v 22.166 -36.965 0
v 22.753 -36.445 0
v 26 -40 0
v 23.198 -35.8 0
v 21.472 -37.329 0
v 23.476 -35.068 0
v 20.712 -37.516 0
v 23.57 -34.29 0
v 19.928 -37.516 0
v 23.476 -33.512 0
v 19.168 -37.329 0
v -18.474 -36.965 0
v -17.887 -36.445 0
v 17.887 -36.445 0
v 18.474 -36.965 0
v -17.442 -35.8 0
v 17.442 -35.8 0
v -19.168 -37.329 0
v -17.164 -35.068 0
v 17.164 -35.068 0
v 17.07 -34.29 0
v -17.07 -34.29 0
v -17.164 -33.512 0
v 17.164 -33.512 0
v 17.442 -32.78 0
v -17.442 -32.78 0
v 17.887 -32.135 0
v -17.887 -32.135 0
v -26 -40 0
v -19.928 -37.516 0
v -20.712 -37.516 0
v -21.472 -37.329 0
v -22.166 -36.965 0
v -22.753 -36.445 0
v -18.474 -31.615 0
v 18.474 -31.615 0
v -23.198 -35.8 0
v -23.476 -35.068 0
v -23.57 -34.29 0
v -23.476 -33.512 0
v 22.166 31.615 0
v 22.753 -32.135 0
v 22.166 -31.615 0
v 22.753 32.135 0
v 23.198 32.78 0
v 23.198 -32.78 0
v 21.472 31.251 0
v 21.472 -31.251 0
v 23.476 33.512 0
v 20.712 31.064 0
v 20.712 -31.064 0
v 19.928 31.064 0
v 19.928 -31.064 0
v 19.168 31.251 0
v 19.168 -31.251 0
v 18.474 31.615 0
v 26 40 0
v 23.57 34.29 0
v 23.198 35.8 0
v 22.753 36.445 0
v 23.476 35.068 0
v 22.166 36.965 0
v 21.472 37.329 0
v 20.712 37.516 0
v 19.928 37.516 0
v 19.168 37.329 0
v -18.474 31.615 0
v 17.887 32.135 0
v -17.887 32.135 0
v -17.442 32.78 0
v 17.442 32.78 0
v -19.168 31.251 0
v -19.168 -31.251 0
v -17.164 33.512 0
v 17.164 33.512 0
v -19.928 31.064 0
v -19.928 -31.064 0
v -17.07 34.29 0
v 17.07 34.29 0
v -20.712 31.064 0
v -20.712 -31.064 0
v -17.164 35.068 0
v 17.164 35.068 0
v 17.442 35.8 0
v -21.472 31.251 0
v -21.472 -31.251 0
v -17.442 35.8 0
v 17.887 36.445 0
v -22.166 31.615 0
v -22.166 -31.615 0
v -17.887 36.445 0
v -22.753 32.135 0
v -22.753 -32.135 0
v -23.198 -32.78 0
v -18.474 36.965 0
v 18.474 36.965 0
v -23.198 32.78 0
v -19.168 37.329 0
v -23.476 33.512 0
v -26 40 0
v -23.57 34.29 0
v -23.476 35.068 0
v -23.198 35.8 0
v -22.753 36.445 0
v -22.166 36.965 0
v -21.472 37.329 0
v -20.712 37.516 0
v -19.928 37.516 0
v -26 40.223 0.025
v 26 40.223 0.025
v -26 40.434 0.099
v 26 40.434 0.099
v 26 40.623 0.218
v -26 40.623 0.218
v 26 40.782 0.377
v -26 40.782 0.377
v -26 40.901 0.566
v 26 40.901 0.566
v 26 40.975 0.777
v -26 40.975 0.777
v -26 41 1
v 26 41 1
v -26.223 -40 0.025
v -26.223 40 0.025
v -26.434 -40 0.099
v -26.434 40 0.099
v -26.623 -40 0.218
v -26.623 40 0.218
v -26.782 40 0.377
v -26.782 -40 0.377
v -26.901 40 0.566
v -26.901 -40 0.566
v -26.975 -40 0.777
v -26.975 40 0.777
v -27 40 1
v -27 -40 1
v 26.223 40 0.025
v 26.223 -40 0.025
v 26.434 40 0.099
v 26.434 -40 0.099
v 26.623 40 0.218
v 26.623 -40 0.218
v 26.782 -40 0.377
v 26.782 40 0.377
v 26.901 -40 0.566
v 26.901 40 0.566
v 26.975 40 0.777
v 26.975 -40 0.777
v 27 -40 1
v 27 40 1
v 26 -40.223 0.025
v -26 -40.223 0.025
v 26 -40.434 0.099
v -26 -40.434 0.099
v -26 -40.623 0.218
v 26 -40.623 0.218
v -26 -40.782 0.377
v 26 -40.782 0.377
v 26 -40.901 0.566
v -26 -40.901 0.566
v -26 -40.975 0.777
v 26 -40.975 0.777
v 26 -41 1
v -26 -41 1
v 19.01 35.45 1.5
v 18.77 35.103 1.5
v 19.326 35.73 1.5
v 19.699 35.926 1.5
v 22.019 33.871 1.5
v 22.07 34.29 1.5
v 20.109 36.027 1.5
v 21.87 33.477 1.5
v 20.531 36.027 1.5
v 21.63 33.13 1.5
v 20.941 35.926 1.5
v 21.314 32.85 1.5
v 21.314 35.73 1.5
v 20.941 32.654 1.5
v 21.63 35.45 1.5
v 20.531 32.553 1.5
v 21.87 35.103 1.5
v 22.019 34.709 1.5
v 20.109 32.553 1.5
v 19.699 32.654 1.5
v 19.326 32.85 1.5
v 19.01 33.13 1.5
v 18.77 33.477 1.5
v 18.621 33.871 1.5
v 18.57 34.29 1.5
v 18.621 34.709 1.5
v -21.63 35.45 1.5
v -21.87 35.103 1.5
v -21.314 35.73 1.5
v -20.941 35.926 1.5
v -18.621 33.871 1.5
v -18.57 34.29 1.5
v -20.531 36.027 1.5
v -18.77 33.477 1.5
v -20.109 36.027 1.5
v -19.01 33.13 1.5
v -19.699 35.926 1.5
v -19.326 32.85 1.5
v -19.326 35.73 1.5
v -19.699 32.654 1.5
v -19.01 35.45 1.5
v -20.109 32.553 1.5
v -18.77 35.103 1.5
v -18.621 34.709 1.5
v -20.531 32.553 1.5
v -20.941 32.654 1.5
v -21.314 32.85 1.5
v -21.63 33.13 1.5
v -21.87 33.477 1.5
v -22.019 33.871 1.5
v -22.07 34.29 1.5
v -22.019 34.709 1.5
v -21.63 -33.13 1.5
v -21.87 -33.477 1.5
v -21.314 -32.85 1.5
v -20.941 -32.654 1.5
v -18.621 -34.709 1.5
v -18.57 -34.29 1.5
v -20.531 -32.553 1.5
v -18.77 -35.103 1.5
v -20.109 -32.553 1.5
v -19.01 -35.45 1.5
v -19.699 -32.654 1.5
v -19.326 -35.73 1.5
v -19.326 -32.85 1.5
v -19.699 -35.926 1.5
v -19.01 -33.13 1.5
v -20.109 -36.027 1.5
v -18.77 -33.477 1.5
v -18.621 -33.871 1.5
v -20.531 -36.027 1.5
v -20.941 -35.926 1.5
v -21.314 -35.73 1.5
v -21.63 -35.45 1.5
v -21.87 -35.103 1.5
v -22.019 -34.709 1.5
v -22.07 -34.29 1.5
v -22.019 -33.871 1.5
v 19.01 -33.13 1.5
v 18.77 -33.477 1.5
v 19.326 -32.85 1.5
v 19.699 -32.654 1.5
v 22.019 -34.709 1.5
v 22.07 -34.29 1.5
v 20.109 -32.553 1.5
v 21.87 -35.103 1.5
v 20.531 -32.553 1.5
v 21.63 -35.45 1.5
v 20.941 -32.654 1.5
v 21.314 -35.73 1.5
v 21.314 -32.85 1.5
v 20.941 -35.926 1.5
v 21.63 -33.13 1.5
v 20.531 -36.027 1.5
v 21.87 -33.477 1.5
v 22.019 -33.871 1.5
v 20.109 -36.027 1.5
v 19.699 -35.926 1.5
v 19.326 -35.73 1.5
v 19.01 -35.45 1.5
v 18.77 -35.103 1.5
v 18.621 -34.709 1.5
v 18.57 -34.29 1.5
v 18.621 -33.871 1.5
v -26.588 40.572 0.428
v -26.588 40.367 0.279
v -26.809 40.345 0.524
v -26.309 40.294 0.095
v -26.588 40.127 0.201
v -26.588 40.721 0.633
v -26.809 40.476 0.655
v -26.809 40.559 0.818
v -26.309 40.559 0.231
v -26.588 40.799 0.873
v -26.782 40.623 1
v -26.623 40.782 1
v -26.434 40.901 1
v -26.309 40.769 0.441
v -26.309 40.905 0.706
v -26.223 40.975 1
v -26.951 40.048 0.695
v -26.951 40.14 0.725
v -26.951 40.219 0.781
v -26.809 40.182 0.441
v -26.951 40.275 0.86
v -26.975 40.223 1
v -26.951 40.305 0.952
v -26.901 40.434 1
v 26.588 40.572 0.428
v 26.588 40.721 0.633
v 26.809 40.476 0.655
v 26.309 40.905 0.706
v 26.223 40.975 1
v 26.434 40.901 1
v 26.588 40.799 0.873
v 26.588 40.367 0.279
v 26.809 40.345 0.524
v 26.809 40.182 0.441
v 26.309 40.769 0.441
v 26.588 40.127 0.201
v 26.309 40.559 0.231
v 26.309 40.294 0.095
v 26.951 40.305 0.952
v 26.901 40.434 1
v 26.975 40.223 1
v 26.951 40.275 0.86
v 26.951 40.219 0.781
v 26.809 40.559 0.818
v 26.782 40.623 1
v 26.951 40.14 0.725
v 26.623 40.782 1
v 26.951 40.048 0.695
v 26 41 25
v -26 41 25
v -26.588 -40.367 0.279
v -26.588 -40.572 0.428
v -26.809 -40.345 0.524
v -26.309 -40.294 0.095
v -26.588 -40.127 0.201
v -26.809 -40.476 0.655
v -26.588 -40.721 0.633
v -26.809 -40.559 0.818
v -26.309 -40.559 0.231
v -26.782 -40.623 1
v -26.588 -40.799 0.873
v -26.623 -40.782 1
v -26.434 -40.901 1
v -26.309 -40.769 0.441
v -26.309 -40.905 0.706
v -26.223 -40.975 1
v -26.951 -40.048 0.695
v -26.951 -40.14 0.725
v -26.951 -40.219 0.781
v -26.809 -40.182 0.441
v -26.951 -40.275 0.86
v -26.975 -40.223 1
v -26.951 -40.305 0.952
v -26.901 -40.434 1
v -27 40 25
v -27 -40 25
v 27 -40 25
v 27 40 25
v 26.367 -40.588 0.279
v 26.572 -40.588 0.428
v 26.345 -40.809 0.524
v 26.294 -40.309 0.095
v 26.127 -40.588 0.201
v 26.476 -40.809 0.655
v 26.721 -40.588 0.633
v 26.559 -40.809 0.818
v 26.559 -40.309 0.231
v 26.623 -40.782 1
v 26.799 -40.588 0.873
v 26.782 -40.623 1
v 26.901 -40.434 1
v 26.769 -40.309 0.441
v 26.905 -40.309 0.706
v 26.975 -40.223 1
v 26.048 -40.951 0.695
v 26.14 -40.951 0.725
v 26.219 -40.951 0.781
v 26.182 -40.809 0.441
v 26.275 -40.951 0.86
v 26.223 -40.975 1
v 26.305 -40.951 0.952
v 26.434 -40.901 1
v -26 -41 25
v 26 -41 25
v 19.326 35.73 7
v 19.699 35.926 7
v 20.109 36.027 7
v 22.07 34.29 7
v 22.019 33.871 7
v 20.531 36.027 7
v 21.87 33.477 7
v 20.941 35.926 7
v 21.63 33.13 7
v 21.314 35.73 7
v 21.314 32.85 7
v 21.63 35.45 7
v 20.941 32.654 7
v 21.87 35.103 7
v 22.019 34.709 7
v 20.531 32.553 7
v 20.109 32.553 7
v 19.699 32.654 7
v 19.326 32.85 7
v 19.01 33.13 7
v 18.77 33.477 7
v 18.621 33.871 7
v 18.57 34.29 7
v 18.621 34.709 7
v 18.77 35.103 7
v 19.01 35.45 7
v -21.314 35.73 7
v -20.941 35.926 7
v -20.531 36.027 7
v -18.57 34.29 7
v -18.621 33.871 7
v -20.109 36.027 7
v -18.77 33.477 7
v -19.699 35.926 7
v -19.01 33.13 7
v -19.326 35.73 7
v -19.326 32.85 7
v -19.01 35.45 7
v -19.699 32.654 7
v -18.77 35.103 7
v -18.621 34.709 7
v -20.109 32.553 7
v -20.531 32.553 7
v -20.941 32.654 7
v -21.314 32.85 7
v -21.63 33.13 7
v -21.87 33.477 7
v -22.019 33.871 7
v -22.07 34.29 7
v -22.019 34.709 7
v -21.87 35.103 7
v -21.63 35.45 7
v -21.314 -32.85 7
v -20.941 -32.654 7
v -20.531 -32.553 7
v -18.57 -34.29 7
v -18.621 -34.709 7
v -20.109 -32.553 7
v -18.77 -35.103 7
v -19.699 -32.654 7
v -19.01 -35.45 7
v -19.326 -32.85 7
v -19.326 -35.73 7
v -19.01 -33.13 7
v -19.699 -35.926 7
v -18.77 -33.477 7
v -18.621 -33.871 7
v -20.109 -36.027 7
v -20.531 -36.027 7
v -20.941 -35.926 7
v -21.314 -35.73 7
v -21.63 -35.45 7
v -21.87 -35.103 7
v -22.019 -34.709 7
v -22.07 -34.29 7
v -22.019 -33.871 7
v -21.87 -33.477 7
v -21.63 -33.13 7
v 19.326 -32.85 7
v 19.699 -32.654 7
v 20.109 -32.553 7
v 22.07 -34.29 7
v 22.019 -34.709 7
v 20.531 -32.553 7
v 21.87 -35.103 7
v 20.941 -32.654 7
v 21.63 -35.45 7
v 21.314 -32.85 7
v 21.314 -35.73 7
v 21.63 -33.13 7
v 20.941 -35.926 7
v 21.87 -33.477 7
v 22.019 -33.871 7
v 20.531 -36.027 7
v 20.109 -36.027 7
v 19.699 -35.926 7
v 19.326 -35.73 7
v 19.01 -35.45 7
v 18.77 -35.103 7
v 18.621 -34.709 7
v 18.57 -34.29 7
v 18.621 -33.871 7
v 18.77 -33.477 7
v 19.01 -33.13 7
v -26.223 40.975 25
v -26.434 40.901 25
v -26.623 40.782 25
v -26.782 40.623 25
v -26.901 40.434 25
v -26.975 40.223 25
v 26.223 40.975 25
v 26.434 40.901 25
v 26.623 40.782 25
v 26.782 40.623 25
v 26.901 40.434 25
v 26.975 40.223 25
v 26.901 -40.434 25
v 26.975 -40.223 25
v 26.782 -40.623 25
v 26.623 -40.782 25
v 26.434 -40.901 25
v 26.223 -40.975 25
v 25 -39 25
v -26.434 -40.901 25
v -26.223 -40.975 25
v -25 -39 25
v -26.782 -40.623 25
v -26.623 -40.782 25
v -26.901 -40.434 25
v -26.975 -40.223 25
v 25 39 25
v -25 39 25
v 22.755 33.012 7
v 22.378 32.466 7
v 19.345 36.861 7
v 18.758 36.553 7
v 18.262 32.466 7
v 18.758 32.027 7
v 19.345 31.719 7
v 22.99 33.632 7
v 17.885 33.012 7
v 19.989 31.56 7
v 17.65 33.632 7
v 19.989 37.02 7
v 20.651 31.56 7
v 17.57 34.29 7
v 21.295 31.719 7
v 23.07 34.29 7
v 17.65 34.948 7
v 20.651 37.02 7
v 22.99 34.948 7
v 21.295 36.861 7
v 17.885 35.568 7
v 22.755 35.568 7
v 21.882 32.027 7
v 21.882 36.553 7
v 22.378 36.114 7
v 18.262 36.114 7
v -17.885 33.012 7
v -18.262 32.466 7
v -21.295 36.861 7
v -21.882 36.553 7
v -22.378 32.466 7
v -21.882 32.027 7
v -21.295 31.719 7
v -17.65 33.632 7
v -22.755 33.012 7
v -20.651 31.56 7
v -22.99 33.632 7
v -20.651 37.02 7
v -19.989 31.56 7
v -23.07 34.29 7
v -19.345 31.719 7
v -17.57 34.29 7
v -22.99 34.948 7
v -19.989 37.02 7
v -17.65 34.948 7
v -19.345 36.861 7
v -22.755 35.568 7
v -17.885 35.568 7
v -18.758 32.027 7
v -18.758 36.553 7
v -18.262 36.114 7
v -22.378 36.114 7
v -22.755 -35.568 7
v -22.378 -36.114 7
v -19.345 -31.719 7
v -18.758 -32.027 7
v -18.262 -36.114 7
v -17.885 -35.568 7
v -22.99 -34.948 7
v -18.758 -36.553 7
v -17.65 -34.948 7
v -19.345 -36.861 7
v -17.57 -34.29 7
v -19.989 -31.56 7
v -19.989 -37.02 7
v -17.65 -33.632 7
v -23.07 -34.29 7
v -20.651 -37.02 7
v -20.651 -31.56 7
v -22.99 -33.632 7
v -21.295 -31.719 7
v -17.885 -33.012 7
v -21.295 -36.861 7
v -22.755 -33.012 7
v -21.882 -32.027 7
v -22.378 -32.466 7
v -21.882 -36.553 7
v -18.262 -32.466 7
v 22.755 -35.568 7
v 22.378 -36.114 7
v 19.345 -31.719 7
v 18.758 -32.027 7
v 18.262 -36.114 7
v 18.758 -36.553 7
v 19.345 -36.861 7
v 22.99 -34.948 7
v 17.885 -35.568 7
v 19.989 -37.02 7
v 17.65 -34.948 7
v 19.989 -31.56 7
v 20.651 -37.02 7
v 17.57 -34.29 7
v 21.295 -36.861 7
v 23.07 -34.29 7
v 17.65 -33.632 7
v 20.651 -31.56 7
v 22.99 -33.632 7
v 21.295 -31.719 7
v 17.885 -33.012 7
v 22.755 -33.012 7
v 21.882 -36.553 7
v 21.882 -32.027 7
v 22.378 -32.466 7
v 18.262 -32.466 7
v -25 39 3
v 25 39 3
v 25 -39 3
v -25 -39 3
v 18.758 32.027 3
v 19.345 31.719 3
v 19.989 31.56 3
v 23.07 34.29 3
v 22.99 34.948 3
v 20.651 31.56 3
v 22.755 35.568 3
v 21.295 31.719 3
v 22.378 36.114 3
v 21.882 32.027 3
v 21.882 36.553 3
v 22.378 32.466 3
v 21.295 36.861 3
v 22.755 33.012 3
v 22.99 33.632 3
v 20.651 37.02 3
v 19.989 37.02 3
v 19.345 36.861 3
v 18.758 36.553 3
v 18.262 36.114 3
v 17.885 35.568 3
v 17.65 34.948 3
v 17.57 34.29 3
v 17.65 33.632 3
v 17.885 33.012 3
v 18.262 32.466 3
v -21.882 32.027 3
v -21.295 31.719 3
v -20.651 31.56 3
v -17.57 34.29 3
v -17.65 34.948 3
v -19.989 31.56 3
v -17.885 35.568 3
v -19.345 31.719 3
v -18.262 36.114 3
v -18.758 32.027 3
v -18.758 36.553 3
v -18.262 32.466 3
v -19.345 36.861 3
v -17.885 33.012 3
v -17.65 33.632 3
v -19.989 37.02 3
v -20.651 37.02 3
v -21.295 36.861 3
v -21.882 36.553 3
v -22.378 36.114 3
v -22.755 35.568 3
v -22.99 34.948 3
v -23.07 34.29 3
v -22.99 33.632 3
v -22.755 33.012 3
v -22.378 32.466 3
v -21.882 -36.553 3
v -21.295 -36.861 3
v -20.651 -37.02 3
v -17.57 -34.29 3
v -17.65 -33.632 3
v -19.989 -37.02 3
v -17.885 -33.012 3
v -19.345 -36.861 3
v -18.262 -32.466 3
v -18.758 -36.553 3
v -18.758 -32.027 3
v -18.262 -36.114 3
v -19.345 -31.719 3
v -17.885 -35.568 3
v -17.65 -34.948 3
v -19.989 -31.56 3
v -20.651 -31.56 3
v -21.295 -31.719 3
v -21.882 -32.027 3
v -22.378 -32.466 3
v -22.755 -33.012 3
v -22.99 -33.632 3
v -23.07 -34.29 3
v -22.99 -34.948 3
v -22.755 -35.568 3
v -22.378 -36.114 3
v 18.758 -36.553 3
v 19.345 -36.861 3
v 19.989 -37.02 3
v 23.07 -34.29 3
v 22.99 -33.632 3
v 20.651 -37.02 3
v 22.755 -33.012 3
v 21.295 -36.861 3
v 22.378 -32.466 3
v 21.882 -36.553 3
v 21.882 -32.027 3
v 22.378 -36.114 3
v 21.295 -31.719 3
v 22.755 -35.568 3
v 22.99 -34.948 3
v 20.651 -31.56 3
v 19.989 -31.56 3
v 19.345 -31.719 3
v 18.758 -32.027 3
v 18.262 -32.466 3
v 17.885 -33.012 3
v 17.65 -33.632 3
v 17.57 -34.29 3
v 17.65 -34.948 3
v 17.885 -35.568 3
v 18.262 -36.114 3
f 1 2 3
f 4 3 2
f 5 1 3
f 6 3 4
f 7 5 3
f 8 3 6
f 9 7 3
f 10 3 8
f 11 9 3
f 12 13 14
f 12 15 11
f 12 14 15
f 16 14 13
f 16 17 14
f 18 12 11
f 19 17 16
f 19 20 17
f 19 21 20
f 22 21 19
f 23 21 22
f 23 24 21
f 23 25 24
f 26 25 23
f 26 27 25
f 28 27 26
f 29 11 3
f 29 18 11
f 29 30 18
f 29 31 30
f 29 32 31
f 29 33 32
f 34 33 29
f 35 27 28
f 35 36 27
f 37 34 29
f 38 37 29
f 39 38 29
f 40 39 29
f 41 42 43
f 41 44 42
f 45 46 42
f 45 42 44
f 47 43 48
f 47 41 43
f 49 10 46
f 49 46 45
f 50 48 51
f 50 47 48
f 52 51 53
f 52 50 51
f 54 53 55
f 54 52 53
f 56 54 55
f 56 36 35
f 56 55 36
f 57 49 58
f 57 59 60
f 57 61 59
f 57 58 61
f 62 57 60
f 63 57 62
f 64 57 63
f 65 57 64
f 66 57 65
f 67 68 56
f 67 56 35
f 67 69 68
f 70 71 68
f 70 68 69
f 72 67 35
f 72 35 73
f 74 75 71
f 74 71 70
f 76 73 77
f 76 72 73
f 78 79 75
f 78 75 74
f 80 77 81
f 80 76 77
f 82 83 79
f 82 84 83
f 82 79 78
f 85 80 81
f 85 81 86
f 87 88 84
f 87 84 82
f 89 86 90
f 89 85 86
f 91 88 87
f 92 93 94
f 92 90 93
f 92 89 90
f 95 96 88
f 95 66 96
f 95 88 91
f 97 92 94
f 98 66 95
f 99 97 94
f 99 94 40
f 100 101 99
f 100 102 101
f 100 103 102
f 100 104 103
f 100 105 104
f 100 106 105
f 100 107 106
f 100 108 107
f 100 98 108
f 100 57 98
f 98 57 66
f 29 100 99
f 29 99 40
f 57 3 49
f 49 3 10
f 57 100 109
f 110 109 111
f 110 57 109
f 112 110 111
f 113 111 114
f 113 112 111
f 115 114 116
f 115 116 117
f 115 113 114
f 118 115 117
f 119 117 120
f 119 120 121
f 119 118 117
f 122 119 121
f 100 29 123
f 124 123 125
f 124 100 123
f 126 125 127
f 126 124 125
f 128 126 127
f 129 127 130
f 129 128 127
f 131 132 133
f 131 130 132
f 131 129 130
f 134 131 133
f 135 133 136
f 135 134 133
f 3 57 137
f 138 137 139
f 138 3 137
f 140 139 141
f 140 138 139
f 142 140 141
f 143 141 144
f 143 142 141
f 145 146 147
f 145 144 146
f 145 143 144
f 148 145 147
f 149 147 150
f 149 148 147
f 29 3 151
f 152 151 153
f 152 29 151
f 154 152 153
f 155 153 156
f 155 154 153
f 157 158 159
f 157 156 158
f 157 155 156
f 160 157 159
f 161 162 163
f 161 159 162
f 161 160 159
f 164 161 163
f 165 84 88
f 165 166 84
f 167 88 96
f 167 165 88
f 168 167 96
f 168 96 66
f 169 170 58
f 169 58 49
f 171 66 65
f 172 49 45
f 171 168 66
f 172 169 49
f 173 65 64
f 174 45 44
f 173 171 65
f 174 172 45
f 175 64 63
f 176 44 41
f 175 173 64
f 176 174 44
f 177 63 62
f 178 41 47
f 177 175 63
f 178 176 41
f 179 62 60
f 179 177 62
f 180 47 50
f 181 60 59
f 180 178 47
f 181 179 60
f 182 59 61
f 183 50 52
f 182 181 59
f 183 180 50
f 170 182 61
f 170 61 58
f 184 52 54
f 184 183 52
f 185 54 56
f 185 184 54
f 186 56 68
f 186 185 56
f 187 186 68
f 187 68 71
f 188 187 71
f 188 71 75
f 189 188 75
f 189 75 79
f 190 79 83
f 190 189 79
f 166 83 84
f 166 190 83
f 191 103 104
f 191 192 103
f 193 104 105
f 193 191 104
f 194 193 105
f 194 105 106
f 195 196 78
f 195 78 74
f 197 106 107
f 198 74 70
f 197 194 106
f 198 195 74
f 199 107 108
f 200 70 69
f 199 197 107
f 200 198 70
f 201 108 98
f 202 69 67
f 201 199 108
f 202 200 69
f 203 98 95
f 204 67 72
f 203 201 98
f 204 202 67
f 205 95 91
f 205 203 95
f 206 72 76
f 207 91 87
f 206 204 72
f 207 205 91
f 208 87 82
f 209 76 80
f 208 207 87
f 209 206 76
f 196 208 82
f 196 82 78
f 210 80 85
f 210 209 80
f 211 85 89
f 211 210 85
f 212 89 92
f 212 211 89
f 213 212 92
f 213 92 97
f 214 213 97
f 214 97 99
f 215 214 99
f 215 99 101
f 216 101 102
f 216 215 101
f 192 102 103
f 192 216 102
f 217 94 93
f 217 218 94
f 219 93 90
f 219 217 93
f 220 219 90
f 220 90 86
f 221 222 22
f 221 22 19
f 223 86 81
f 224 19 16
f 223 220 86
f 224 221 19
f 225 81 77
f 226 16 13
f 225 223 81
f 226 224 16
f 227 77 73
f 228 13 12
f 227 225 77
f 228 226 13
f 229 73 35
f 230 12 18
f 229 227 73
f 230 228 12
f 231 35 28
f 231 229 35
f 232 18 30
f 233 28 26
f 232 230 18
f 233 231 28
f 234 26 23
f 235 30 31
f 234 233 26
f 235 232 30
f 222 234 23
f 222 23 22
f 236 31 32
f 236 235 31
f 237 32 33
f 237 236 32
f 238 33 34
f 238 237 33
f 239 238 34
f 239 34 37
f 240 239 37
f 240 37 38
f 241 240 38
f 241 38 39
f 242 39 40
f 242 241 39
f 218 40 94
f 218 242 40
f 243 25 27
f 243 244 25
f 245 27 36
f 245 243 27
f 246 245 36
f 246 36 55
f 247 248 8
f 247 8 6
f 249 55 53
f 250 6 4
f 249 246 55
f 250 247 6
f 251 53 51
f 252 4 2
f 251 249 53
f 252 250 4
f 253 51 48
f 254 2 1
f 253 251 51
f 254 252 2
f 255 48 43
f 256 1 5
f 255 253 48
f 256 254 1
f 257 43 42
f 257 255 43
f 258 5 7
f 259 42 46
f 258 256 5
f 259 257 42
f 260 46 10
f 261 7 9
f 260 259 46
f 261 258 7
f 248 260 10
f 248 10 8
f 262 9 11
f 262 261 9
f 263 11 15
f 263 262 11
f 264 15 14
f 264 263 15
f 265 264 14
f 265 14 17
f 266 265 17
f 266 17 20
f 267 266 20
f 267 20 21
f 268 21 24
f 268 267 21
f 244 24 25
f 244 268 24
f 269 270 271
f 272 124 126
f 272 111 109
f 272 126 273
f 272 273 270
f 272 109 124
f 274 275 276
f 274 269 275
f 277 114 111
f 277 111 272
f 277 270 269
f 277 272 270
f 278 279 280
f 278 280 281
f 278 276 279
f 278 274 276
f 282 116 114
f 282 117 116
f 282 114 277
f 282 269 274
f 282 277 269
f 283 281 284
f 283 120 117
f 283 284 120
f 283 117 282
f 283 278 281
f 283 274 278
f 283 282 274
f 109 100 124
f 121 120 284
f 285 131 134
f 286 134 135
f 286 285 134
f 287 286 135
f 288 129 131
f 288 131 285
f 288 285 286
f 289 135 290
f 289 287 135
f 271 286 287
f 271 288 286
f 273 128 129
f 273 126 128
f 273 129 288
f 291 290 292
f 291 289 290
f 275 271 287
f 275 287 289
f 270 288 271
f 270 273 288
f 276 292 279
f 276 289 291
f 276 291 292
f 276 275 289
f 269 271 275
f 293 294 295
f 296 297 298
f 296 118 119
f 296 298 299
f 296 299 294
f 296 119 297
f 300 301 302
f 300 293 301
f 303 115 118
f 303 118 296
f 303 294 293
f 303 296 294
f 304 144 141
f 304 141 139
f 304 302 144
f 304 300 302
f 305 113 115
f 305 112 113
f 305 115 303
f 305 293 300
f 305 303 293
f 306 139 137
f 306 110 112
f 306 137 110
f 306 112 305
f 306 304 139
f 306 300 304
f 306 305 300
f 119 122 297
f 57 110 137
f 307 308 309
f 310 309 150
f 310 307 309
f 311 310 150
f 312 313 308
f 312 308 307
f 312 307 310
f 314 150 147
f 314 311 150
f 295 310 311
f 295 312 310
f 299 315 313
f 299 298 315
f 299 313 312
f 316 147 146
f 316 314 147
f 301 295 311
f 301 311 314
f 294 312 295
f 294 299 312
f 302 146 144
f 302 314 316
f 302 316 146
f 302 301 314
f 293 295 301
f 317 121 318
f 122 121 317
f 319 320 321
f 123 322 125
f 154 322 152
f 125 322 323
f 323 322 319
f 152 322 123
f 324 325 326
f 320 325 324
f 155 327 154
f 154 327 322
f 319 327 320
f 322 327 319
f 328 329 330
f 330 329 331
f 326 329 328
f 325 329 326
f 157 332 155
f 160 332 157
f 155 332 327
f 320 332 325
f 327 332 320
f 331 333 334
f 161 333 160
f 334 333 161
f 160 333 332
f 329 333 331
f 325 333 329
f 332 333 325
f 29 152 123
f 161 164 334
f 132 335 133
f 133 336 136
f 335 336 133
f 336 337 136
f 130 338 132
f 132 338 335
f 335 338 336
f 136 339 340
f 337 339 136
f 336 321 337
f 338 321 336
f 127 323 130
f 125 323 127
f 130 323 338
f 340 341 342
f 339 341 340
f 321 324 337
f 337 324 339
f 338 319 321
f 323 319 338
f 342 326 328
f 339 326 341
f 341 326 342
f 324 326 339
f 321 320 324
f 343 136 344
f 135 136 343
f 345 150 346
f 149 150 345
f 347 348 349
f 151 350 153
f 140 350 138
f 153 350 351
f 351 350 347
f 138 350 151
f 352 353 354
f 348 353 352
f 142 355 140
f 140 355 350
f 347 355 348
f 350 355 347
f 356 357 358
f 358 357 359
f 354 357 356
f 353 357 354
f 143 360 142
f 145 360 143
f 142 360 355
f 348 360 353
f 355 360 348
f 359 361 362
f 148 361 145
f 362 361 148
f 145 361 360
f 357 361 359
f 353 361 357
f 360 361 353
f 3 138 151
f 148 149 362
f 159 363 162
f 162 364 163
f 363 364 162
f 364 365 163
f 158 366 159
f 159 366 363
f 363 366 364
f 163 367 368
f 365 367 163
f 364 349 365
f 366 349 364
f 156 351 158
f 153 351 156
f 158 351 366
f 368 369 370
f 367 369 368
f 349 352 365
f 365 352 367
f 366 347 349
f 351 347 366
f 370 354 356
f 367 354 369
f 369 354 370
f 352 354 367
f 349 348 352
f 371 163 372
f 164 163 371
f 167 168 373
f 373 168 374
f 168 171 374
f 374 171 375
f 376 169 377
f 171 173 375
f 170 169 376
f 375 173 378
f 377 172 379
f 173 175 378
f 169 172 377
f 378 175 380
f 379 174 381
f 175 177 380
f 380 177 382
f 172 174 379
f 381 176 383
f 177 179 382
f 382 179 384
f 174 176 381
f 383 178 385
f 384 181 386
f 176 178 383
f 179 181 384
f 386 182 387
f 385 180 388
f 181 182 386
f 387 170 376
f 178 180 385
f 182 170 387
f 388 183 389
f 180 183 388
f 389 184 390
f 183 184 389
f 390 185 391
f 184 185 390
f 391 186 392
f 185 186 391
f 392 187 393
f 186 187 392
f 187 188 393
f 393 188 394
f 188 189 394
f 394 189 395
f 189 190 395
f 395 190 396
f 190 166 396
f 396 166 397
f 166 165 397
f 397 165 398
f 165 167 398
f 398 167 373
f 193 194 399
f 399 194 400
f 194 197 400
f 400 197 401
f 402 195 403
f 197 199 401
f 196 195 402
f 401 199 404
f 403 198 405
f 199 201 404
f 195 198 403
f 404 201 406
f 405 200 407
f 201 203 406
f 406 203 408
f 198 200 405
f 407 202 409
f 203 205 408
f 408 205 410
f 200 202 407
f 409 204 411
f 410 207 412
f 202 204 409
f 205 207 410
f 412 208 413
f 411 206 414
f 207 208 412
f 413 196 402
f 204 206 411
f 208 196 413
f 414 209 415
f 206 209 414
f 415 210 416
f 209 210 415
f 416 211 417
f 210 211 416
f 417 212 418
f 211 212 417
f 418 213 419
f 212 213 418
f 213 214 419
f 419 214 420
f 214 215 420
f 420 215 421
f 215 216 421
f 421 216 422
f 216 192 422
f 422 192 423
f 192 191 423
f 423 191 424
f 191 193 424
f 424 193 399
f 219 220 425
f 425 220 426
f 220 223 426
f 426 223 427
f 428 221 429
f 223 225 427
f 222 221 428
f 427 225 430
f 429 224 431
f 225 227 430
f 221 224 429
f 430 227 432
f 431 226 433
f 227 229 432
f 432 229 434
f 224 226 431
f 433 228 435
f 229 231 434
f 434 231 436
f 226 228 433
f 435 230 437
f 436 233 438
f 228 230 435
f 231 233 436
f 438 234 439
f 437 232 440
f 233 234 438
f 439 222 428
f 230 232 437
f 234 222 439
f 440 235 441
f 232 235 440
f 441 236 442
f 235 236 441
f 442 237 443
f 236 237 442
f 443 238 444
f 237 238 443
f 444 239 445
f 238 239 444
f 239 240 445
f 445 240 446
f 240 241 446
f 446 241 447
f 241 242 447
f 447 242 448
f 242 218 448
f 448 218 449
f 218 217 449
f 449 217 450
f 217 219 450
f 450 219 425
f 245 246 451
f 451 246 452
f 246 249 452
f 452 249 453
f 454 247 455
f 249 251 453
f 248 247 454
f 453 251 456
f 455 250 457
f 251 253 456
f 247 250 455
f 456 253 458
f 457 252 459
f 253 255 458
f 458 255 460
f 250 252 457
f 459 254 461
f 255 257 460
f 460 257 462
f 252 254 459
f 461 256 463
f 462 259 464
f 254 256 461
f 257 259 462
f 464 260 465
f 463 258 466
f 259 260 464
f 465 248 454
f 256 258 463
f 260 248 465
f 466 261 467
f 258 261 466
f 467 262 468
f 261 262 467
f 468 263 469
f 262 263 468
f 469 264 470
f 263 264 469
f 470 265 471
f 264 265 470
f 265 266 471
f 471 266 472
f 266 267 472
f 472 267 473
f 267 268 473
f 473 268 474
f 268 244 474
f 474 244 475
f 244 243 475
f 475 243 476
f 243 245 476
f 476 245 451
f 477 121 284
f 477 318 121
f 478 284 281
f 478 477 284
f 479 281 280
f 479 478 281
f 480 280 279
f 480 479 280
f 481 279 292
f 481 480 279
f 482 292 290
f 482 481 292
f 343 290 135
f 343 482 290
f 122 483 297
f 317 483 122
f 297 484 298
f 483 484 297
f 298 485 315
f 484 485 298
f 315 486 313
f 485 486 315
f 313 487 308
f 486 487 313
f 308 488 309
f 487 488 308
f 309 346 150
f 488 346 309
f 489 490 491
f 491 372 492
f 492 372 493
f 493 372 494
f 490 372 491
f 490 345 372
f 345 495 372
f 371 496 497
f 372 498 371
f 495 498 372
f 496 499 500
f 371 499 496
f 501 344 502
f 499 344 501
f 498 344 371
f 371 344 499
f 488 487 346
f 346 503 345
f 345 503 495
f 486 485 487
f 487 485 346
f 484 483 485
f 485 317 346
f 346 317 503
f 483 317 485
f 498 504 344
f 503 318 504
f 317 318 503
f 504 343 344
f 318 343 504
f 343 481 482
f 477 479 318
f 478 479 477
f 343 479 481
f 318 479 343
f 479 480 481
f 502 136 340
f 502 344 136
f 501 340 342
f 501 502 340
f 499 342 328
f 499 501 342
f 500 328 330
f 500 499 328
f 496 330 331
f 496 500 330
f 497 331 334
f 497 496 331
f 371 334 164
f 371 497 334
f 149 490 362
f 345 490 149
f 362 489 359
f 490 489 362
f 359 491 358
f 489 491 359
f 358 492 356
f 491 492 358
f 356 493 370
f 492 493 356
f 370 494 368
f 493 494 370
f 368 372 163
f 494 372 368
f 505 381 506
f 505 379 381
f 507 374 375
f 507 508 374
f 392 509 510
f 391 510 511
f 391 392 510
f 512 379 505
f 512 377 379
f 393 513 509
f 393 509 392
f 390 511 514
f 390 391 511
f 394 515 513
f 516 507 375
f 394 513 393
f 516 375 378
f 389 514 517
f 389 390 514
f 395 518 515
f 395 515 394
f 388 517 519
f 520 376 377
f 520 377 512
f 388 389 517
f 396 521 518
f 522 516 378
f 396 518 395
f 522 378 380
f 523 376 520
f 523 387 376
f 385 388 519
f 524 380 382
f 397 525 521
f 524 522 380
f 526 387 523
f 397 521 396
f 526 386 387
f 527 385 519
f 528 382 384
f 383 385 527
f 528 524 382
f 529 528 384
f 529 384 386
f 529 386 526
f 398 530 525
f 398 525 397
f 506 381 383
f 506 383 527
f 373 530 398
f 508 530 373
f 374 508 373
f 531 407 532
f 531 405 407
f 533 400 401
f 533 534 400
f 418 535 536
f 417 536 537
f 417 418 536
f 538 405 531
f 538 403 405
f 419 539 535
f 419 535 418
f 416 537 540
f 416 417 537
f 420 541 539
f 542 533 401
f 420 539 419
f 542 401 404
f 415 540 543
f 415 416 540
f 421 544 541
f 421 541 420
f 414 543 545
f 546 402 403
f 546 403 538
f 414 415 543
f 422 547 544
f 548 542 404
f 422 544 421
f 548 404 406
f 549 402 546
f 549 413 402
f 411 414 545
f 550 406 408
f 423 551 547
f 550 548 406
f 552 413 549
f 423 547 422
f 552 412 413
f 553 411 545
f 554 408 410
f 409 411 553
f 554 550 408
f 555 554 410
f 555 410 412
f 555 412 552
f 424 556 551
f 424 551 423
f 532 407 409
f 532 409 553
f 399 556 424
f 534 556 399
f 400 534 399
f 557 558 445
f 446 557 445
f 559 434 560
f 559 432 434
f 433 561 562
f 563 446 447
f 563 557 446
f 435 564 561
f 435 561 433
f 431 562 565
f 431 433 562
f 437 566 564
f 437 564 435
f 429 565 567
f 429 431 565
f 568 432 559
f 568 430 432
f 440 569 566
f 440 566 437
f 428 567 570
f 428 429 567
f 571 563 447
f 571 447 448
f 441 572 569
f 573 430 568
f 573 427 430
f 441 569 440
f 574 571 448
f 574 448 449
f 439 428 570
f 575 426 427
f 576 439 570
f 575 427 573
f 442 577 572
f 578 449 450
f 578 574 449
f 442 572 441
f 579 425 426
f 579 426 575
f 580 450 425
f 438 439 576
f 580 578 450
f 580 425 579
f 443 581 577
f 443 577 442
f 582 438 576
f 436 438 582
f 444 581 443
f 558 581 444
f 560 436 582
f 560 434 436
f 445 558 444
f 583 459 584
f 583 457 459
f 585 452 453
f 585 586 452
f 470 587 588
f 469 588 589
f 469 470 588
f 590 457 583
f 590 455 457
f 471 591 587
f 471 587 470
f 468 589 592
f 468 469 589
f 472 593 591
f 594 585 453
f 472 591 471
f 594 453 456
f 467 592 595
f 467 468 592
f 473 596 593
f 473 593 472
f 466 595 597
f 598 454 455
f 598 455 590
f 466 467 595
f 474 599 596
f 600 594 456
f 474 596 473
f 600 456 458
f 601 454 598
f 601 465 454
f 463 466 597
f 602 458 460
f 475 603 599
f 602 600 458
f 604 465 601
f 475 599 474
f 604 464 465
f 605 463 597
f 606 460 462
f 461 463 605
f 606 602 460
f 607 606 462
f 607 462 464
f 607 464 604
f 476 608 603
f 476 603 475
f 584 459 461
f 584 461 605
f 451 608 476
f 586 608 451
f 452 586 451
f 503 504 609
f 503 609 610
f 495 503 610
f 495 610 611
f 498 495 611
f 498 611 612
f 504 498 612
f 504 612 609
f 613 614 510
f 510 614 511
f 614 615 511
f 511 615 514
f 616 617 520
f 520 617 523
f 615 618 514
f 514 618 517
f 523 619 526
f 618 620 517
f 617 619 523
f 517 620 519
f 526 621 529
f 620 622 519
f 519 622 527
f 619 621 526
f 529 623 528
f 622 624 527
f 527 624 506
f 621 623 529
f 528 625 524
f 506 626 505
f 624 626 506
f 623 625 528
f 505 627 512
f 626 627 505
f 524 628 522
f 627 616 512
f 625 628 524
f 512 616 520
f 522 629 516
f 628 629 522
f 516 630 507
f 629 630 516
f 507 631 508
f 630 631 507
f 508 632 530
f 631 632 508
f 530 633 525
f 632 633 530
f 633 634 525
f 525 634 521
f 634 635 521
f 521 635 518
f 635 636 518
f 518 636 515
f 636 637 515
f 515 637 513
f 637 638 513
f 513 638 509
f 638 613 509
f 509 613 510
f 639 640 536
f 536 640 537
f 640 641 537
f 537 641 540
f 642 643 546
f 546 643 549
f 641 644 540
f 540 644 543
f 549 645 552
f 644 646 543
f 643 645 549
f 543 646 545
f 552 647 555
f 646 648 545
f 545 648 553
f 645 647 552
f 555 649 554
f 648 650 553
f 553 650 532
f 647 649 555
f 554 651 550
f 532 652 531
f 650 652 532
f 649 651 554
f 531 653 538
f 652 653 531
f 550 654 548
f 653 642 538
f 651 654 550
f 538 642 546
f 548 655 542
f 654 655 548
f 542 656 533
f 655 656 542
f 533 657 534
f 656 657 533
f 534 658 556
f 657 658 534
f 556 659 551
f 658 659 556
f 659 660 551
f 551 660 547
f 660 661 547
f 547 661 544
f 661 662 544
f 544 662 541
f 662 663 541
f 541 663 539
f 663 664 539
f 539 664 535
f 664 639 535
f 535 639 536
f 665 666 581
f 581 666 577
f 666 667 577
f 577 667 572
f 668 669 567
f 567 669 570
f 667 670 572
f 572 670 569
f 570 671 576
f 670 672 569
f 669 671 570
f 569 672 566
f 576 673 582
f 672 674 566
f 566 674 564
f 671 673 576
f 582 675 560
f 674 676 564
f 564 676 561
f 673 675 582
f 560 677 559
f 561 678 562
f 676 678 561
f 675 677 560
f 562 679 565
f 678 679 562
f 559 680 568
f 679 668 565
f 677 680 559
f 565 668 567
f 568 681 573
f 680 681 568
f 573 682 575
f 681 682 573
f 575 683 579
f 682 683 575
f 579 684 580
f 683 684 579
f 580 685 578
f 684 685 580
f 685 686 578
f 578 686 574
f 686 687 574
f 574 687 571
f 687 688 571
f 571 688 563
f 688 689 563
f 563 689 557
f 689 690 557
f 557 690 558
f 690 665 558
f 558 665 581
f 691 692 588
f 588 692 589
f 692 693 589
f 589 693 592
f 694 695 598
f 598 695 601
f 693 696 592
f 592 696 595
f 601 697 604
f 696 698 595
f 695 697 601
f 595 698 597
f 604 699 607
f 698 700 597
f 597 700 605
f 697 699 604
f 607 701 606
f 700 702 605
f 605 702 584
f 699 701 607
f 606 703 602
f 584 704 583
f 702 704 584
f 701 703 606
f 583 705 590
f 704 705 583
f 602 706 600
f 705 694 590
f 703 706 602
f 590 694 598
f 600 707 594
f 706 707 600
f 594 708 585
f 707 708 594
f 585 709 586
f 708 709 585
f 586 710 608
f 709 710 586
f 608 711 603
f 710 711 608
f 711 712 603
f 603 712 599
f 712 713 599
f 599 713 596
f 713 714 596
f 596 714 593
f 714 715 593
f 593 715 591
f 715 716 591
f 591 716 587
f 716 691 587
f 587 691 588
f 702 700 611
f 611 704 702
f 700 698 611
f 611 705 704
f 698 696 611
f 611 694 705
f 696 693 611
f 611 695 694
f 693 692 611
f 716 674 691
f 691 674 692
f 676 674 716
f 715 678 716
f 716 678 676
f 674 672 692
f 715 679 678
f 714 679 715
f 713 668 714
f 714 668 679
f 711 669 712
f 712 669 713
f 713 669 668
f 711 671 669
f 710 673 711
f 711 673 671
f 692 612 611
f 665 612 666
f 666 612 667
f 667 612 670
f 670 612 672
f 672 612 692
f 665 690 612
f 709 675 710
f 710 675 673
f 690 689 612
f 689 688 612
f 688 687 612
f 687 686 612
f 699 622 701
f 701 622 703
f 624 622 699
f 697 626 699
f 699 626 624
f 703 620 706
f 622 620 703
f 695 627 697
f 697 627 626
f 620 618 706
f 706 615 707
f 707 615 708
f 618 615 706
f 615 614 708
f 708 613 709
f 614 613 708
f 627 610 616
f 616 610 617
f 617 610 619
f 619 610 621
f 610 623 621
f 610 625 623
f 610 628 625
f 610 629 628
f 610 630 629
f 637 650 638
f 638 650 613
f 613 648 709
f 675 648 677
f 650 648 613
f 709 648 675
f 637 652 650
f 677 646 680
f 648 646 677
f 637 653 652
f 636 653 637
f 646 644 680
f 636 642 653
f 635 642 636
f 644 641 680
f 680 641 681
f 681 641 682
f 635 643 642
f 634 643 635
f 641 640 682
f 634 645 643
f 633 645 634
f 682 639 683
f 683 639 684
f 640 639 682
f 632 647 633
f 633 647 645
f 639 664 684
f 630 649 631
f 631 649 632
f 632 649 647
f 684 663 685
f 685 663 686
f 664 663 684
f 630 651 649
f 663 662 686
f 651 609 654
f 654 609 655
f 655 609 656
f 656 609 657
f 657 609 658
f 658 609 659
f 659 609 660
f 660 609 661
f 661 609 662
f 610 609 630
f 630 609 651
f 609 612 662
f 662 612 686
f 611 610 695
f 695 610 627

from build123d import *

# Parameters (mm, degrees)
SKETCH_W        = 54
SKETCH_H        = 82
PAD_DEPTH       = 25
SKETCH001_W     = 50
SKETCH001_H     = 78
POCKET_DEPTH    = 22
SKETCH002_R     = 2.75
PAD001_DEPTH    = 4
SKETCH003_R     = 1.75
POCKET001_DEPTH = 23
CHAMFER_SIZE    = 1.5
FILLET_R        = 1


with BuildPart() as part:
    # Sketch → Pad (new body)
    with BuildSketch(Plane.XY):
        Rectangle(SKETCH_W, SKETCH_H)
    extrude(amount=PAD_DEPTH)

    # Sketch001 (on Face6 of Pad) → Pocket (cut)
    with BuildSketch(Plane.XY.offset(25)):
        Rectangle(SKETCH001_W, SKETCH001_H)
    extrude(amount=-POCKET_DEPTH, mode=Mode.SUBTRACT)

    # Sketch002 (on Face11 of Pocket) → Pad001 (join)
    with BuildSketch(Plane.XY.offset(3)):
        with Locations((-20.32, 34.29)):
            Circle(SKETCH002_R)
        with Locations((20.32, 34.29)):
            Circle(SKETCH002_R)
        with Locations((-20.32, -34.29)):
            Circle(SKETCH002_R)
        with Locations((20.32, -34.29)):
            Circle(SKETCH002_R)
    extrude(amount=PAD001_DEPTH)

    # Sketch003 (on Face4 of Pad001) → Pocket001 (cut)
    with BuildSketch(Plane(origin=(0, 0, 0), x_dir=(1, 0, 0), z_dir=(0, 0, -1))):
        with Locations((20.32, -34.29)):
            Circle(SKETCH003_R)
        with Locations((-20.32, -34.29)):
            Circle(SKETCH003_R)
        with Locations((-20.32, 34.29)):
            Circle(SKETCH003_R)
        with Locations((20.32, 34.29)):
            Circle(SKETCH003_R)
    extrude(amount=-POCKET001_DEPTH, mode=Mode.SUBTRACT)

    # Chamfer
    chamfer_edges = [part.edges().sort_by_distance(p)[0] for p in [
        (18.57, 34.29, 0),
        (-22.07, 34.29, 0),
        (-22.07, -34.29, 0),
        (18.57, -34.29, 0),
    ]]
    chamfer(chamfer_edges, length=CHAMFER_SIZE)

    # Fillet
    fillet_edges = [part.edges().sort_by_distance(p)[0] for p in [
        (0, 41, 0),
        (27, 41, 12.5),
        (27, 0, 0),
        (0, -41, 0),
        (-27, 0, 0),
        (-27, 41, 12.5),
        (27, -41, 12.5),
        (-27, -41, 12.5),
    ]]
    fillet(fillet_edges, radius=FILLET_R)


solid = part.part
